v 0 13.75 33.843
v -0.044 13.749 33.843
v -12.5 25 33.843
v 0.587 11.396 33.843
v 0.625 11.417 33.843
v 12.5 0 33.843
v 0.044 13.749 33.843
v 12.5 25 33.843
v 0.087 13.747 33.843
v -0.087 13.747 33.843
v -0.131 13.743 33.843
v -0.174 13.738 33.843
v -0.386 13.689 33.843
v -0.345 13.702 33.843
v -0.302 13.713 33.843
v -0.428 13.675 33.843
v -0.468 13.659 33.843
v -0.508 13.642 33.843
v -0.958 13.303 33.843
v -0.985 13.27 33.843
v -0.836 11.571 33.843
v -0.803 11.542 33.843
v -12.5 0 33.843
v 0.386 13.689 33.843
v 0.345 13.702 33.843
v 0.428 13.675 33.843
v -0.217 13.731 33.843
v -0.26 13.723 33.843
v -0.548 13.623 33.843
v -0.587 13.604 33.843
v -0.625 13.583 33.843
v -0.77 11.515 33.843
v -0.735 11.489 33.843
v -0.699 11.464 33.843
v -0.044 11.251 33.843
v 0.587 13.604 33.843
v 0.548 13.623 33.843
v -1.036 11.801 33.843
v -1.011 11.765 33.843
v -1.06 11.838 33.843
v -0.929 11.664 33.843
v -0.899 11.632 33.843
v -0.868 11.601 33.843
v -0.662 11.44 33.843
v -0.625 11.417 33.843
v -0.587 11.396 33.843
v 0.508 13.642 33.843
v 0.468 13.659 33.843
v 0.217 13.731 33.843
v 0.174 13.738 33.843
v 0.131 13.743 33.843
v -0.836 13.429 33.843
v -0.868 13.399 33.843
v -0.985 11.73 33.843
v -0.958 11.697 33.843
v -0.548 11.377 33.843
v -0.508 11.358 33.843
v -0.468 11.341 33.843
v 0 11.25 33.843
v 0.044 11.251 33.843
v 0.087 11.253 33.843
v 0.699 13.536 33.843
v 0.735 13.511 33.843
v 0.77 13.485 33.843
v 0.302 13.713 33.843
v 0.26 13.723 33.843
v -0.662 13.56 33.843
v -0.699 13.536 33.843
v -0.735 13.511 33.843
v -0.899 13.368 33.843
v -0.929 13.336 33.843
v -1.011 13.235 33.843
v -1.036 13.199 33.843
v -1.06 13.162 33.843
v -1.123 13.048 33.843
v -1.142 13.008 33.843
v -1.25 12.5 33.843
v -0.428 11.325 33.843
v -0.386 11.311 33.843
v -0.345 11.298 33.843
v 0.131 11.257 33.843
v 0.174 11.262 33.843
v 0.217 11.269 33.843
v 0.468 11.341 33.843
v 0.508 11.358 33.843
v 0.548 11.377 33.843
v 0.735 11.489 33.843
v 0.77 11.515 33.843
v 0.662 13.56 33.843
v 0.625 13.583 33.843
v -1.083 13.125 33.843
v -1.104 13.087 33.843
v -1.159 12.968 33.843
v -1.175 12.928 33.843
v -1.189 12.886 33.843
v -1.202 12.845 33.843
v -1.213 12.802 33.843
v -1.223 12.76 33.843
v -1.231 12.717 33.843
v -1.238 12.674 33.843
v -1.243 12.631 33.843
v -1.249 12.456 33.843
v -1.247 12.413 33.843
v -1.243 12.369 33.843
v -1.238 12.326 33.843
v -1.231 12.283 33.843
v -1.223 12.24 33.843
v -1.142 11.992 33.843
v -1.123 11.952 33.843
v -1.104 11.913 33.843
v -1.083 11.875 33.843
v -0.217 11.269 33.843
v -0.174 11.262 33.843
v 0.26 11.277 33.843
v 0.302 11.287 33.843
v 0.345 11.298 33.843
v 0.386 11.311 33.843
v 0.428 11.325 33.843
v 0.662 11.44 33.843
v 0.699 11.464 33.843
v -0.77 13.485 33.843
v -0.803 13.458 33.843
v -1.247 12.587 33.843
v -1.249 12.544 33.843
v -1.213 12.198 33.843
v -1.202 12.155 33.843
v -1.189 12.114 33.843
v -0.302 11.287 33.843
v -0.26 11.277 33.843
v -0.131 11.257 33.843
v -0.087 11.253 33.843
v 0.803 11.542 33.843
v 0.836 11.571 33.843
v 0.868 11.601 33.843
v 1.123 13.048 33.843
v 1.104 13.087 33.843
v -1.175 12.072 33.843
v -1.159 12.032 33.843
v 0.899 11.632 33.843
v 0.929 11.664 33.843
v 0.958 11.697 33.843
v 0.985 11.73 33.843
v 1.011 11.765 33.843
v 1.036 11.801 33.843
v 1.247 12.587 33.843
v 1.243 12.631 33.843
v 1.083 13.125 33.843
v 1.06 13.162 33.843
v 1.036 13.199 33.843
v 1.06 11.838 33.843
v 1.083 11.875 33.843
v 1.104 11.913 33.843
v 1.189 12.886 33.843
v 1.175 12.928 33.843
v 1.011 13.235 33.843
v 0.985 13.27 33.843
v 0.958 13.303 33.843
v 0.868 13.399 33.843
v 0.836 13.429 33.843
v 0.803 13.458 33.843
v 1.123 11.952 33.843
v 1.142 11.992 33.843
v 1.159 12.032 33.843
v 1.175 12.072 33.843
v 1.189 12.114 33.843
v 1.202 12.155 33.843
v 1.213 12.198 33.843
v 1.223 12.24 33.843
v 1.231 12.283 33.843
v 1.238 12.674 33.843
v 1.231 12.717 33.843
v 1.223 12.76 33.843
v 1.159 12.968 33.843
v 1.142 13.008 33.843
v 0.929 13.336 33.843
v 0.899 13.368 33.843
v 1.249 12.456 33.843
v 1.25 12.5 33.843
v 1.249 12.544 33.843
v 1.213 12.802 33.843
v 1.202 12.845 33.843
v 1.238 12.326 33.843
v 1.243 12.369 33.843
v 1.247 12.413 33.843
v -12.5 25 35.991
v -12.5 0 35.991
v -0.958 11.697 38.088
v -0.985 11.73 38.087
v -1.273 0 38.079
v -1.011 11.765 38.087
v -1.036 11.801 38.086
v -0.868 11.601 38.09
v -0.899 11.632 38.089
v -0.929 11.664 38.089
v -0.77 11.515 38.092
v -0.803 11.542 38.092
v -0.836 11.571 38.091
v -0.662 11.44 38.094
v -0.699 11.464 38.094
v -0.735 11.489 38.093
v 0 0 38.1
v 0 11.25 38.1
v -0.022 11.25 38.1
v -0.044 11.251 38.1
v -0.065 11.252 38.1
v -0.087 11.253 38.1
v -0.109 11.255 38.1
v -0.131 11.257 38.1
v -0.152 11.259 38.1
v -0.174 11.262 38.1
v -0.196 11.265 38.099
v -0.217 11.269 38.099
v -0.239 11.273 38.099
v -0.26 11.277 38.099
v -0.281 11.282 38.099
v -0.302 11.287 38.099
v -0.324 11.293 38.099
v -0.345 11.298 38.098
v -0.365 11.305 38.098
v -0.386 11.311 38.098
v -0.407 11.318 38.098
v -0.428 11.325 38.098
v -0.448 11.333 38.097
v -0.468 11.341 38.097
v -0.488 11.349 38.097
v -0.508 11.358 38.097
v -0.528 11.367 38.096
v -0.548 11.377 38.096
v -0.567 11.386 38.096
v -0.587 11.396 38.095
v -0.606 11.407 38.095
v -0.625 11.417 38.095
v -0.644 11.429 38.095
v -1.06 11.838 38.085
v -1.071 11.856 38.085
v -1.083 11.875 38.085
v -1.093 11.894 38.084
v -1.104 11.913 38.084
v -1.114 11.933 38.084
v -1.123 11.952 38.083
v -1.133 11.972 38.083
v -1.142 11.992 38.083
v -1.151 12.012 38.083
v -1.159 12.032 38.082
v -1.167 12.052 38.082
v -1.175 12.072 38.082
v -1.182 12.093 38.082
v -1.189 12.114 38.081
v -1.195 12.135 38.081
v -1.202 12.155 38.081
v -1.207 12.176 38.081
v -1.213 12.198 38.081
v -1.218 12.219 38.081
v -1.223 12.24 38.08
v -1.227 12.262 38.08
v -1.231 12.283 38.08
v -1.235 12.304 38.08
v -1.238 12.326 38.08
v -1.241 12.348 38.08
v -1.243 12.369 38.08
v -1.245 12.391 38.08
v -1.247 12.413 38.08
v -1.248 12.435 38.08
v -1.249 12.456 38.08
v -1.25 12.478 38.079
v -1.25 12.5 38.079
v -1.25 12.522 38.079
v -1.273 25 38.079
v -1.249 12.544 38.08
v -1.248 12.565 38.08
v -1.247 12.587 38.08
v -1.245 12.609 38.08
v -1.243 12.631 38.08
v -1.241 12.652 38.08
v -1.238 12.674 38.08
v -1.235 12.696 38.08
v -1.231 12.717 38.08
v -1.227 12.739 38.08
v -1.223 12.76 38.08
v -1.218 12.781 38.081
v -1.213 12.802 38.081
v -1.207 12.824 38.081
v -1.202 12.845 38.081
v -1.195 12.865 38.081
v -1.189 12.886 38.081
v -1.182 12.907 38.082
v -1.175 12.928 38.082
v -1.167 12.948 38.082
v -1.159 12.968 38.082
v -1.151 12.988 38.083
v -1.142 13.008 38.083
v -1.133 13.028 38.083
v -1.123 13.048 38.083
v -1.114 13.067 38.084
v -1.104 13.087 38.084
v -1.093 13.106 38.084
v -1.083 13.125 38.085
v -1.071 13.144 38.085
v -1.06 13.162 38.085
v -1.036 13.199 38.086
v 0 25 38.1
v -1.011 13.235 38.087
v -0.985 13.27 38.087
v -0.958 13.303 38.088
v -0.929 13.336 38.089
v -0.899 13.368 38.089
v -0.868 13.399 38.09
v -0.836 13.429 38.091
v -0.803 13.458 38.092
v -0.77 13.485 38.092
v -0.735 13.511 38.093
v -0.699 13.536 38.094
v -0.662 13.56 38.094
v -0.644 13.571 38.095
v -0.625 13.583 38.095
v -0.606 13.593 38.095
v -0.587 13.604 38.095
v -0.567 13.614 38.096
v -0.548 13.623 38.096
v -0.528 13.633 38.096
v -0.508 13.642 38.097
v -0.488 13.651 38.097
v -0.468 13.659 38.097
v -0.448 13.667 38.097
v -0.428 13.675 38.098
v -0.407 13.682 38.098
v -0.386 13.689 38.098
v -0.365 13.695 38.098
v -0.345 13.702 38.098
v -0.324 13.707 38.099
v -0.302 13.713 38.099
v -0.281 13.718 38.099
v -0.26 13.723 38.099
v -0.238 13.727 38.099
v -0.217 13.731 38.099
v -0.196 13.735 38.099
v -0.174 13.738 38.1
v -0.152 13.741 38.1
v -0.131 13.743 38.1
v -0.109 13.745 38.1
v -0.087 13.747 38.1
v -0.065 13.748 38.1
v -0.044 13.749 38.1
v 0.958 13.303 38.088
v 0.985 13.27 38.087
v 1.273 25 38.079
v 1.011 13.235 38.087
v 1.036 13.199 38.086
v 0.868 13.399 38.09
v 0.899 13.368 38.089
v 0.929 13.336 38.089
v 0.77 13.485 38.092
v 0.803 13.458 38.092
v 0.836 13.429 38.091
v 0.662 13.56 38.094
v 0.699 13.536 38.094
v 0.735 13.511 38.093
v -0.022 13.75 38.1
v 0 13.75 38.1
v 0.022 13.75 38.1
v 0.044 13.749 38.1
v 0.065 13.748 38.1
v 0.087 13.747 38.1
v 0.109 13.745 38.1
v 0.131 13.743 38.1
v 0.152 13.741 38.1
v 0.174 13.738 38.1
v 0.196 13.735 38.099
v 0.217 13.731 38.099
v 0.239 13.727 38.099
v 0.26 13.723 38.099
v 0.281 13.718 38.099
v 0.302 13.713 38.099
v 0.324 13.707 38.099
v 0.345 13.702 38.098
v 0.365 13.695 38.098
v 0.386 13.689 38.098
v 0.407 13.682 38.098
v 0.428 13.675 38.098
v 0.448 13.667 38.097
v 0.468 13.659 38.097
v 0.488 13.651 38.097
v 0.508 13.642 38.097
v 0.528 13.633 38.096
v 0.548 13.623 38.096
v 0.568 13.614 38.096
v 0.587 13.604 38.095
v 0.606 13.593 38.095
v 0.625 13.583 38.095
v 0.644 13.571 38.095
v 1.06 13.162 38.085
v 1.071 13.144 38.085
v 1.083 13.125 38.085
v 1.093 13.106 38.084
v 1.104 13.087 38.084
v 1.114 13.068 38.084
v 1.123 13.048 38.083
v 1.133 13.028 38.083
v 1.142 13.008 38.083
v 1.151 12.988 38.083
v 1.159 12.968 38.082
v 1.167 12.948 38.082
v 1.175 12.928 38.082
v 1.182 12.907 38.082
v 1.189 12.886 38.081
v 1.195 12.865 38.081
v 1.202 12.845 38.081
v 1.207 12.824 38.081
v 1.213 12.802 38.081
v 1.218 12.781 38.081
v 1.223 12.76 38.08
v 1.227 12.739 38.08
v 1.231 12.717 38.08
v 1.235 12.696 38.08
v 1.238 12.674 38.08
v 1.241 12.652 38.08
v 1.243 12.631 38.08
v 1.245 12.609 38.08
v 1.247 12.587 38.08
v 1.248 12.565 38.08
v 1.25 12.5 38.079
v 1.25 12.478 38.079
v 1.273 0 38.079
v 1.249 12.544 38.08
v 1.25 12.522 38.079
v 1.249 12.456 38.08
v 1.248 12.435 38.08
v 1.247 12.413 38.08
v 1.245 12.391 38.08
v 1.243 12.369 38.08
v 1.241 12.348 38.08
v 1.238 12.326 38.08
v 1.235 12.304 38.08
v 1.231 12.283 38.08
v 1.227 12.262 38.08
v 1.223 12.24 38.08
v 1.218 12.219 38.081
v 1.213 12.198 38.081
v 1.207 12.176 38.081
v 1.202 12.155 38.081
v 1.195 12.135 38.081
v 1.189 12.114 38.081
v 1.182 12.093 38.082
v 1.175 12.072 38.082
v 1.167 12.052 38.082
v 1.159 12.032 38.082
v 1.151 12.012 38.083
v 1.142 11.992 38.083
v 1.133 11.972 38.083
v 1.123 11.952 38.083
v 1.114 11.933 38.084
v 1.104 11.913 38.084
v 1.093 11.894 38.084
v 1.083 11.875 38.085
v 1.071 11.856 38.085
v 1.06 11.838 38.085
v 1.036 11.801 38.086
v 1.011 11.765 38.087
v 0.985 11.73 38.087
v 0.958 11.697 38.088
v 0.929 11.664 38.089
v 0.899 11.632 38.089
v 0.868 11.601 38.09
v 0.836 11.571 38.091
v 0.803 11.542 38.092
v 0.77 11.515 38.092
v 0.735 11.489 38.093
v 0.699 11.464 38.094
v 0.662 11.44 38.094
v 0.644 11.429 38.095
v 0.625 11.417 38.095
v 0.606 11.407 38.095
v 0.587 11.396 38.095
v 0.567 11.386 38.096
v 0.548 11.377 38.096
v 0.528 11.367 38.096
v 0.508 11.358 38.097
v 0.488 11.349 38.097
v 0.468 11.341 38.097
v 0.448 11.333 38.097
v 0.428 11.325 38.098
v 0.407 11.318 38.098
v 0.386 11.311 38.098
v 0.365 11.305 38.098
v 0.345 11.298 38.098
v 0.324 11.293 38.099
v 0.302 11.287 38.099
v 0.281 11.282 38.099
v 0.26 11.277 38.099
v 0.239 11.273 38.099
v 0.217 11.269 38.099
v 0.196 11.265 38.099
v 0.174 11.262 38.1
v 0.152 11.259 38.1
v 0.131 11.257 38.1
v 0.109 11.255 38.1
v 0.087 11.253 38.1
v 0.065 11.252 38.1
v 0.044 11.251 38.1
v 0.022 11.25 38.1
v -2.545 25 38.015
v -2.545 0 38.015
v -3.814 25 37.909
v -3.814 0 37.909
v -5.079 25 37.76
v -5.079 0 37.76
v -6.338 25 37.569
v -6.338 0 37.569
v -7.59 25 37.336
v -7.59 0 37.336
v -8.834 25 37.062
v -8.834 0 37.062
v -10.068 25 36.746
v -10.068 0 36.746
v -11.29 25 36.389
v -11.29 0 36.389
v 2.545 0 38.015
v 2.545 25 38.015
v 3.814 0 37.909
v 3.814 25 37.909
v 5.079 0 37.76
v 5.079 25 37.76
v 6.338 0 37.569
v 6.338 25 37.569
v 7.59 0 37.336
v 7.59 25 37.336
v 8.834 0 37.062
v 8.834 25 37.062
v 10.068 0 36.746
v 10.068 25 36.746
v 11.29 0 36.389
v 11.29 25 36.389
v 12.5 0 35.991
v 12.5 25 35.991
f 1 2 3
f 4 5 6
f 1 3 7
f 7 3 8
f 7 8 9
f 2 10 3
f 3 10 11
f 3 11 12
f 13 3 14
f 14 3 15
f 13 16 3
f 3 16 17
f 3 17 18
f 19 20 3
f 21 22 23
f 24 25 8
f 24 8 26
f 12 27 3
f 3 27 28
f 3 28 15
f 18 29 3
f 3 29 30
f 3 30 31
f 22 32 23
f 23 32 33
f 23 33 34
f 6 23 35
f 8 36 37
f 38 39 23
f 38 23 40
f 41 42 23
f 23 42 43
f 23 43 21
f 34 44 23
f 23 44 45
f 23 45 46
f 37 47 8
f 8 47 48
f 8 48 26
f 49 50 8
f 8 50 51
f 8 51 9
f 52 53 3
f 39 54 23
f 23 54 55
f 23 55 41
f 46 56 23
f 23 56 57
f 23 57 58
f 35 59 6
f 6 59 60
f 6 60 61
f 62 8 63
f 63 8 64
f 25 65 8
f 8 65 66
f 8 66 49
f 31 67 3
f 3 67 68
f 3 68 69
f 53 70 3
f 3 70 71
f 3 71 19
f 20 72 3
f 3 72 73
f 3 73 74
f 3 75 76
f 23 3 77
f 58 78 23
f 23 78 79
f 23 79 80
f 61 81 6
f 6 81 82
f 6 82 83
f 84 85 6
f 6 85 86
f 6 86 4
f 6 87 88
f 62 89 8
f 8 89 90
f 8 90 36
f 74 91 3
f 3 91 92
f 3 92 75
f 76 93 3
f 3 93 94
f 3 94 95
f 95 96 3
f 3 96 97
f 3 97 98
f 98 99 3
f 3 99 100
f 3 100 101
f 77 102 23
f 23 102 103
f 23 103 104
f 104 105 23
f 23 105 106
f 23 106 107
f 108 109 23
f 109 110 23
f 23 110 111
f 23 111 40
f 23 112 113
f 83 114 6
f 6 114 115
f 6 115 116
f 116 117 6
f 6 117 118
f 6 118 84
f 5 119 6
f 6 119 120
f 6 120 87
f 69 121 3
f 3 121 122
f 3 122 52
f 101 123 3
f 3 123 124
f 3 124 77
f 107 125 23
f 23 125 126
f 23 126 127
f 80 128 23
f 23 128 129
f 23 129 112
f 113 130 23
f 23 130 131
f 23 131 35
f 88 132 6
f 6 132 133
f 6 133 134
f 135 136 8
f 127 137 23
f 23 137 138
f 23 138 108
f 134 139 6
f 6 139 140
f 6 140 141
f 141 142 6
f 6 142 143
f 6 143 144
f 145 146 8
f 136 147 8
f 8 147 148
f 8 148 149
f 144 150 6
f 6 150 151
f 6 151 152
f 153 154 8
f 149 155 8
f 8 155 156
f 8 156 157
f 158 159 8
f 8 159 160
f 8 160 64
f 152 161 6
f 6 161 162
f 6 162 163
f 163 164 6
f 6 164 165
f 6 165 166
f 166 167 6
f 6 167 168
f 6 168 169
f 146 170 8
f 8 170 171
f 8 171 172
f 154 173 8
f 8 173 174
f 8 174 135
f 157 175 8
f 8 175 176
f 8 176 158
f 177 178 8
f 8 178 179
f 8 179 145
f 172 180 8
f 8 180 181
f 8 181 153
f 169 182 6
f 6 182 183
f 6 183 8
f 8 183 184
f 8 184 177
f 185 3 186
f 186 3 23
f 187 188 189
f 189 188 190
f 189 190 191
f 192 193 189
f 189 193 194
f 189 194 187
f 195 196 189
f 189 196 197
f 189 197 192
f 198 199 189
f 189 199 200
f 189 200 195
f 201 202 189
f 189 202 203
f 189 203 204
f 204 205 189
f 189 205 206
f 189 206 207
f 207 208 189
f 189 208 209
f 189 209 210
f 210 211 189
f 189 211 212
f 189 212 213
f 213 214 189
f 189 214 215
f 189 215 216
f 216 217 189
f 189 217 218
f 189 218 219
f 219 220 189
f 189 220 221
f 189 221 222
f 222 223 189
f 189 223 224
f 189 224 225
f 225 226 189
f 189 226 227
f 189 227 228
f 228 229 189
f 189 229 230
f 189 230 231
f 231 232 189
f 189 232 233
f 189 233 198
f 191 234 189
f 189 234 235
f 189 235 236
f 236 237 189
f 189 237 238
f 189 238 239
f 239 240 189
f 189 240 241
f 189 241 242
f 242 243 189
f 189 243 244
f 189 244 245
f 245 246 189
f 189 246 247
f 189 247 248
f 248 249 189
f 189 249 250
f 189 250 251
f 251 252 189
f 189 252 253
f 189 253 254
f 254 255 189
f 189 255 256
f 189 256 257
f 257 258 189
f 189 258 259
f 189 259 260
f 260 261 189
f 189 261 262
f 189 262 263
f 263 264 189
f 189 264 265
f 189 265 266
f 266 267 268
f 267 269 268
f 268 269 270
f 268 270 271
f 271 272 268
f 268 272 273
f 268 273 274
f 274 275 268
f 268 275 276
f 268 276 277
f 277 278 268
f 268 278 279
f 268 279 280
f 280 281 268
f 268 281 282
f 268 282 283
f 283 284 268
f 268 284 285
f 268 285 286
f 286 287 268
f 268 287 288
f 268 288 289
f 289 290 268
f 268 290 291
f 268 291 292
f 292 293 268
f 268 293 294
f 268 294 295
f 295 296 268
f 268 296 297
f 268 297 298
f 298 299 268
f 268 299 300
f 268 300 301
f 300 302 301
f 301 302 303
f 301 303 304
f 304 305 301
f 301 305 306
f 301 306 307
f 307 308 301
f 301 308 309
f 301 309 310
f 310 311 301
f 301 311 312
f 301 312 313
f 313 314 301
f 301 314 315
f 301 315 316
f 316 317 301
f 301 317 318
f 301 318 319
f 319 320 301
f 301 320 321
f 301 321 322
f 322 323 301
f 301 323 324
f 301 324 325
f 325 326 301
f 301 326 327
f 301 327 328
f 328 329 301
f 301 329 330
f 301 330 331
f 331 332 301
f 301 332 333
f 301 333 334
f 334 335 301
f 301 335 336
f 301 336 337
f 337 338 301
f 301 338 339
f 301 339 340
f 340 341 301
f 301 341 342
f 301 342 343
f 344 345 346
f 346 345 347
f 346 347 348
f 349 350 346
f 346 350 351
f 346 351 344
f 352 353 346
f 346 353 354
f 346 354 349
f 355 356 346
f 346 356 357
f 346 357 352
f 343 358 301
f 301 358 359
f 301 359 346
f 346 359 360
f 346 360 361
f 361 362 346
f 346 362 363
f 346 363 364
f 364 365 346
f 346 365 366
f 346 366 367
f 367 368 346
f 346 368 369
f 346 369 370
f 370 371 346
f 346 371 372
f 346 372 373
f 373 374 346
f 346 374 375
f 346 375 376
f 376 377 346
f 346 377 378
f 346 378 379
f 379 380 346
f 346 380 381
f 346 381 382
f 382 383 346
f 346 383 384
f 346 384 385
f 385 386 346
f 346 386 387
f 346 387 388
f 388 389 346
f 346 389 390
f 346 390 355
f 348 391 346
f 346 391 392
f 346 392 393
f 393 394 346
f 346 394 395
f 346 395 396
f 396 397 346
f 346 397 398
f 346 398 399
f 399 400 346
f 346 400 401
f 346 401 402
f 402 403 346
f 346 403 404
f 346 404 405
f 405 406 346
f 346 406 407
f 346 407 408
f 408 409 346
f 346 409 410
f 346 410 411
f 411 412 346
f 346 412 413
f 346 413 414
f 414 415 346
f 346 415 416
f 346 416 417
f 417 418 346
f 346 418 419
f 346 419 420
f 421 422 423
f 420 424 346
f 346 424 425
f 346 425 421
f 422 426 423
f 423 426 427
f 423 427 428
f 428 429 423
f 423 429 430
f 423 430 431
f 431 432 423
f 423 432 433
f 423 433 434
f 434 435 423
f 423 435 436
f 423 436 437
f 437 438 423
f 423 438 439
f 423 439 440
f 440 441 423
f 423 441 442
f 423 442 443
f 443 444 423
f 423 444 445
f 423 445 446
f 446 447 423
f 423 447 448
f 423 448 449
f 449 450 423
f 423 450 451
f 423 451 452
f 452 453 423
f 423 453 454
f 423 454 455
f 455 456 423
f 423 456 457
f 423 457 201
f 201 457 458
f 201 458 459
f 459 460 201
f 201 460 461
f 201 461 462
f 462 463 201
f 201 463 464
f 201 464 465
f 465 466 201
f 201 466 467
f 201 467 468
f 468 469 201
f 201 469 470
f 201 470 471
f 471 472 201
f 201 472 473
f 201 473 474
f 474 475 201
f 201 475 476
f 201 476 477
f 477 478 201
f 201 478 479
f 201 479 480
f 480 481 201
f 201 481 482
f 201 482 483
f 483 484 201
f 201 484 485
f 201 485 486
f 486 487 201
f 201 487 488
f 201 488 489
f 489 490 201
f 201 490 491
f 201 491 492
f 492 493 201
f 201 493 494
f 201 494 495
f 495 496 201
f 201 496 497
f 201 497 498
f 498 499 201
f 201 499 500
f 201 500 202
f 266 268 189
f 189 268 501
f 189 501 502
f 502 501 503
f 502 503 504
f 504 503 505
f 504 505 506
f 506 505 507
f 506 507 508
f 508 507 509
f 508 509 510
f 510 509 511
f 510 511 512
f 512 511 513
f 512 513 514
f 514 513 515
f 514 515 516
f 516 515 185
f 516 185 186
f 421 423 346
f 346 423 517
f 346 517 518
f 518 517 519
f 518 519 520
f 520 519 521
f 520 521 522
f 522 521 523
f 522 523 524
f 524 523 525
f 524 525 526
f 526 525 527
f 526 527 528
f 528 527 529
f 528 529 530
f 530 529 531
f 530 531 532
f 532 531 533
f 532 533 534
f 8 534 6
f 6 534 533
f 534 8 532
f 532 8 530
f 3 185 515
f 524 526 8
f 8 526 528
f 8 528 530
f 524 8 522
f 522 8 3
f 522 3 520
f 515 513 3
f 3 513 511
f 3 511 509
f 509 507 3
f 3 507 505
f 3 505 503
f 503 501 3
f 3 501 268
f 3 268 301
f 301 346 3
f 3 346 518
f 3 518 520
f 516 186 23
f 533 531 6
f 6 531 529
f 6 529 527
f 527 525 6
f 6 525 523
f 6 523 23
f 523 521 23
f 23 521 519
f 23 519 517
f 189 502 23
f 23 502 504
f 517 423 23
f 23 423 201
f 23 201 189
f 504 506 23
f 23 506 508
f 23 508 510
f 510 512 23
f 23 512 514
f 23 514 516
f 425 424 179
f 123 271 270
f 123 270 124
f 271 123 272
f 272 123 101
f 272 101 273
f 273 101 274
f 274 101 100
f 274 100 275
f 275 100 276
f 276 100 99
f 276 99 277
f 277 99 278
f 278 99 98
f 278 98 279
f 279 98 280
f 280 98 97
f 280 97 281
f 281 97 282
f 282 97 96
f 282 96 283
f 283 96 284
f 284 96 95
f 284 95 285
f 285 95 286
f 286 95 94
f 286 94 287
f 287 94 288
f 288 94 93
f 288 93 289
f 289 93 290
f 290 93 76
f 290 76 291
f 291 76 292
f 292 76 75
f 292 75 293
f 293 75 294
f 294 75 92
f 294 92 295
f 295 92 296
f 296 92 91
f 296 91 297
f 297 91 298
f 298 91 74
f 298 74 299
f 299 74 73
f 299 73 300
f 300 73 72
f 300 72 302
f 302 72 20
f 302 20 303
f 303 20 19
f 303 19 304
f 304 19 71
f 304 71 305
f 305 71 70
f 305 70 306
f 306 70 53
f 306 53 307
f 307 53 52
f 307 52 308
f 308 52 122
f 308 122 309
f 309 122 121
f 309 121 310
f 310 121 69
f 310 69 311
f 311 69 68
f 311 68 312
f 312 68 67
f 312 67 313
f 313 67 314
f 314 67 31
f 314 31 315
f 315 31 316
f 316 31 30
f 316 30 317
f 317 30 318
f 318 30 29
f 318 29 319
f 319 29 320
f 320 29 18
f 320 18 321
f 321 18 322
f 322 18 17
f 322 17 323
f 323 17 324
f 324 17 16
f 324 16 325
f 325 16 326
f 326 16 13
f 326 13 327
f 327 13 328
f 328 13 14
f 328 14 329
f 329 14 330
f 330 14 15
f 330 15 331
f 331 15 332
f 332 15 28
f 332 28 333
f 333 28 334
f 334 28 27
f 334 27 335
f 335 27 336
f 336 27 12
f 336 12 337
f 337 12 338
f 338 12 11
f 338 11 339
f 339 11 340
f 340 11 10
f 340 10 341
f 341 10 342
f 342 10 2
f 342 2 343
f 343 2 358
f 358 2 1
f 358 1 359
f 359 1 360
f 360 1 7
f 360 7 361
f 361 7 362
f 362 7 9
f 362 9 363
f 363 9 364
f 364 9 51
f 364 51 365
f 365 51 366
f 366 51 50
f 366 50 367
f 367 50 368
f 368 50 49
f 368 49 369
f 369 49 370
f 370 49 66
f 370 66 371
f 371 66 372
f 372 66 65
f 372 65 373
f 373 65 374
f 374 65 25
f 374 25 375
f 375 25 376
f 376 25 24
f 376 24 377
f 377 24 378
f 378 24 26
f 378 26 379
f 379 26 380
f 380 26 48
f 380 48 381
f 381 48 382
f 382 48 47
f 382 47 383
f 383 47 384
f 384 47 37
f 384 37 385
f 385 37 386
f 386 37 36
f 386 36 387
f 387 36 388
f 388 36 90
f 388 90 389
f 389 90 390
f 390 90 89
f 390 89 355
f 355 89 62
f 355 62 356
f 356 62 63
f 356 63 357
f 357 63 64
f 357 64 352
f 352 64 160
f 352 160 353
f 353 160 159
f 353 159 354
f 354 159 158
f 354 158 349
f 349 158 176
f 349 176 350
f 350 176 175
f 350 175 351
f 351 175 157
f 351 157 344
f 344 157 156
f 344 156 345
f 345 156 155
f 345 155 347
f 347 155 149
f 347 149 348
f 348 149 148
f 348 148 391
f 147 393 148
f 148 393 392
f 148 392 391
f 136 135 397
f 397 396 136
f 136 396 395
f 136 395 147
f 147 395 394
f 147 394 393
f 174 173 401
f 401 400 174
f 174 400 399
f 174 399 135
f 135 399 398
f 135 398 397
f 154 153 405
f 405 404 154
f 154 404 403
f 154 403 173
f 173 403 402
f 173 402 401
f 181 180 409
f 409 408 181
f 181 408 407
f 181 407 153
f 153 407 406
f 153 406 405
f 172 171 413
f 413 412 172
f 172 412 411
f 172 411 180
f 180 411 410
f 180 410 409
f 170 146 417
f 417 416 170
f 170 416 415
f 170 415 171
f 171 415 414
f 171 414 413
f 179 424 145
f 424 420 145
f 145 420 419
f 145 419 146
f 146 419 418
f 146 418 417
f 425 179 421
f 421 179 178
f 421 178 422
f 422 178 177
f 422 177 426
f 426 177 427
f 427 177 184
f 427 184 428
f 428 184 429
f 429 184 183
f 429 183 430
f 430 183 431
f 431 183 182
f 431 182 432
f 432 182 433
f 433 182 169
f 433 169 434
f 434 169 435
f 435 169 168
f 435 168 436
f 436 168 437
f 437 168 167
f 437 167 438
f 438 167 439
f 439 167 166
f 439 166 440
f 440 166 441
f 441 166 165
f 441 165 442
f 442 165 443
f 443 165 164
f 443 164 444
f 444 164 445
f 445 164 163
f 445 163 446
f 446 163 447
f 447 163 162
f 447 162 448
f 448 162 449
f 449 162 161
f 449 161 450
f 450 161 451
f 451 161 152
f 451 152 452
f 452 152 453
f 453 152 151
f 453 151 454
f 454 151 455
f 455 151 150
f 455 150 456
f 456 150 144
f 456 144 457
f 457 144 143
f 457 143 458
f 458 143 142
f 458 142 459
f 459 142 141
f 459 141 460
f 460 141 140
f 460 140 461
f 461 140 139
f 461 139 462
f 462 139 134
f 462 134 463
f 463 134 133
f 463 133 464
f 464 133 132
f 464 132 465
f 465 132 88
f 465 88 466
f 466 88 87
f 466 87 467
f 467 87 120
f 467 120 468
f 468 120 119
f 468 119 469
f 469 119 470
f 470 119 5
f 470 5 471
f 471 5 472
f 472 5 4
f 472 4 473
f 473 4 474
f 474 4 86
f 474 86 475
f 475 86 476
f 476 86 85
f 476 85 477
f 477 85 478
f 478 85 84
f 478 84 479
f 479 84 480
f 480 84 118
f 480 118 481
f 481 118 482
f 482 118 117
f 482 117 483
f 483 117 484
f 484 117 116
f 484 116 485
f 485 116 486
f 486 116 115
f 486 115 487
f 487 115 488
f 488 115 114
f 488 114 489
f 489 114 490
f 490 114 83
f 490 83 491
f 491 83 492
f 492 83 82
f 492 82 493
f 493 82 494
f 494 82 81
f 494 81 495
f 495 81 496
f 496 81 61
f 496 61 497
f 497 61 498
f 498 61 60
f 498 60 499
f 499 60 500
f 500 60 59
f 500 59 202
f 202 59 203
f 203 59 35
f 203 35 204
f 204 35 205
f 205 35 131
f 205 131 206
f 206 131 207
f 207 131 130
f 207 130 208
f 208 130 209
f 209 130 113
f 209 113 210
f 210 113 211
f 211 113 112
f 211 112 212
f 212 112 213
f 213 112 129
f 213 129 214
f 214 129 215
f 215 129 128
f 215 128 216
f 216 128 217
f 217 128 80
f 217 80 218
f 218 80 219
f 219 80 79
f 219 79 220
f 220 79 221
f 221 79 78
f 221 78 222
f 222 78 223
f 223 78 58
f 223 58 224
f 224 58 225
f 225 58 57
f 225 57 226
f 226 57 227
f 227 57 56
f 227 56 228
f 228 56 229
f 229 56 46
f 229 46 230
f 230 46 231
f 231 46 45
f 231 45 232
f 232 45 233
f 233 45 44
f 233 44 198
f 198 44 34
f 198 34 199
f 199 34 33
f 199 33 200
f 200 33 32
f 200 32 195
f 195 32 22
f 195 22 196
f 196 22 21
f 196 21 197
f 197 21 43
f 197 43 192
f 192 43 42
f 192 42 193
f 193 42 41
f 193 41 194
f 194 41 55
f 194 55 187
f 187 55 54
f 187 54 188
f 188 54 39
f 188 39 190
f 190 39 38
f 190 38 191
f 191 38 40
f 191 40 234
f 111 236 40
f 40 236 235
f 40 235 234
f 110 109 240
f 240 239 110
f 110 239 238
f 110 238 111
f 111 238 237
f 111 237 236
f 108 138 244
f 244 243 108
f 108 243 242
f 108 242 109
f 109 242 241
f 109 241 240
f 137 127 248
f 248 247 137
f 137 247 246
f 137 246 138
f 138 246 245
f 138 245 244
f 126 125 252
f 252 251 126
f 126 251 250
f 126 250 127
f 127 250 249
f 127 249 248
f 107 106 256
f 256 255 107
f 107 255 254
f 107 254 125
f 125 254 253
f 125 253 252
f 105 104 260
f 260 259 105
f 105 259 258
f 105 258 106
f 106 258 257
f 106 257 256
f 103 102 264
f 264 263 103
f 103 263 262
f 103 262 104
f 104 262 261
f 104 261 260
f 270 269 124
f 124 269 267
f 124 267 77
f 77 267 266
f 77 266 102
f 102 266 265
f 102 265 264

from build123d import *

# Parameters (mm, degrees)
BOSS_EXTRUDE1_DEPTH = 25
SKETCH3_R           = 1.25
CUT_EXTRUDE1_DEPTH  = 20


with BuildPart() as part:
    # Sketch2 → Boss-Extrude1 (new body)
    with BuildSketch(Plane(origin=(0, 0, 0), x_dir=(1, 0, 0), z_dir=(0, 1, 0))):
        with BuildLine():
            Line((0, -33.8431677), (-12.5, -33.8431677))
            Line((-12.5, -33.8431677), (-12.5, -35.991110013))
            ThreePointArc((-12.5, -35.991110013), (0, -38.1), (12.5, -35.991110013))
            Line((12.5, -35.991110013), (12.5, -33.8431677))
            Line((12.5, -33.8431677), (0, -33.8431677))
        make_face()
    extrude(amount=BOSS_EXTRUDE1_DEPTH)

    # Sketch3 → Cut-Extrude1 (cut)
    with BuildSketch(Plane(origin=(0, 0, 33.8431677), x_dir=(-1, 0, 0), z_dir=(0, 0, -1))):
        with Locations((0, 12.5)):
            Circle(SKETCH3_R)
    extrude(amount=-CUT_EXTRUDE1_DEPTH, mode=Mode.SUBTRACT)


solid = part.part
